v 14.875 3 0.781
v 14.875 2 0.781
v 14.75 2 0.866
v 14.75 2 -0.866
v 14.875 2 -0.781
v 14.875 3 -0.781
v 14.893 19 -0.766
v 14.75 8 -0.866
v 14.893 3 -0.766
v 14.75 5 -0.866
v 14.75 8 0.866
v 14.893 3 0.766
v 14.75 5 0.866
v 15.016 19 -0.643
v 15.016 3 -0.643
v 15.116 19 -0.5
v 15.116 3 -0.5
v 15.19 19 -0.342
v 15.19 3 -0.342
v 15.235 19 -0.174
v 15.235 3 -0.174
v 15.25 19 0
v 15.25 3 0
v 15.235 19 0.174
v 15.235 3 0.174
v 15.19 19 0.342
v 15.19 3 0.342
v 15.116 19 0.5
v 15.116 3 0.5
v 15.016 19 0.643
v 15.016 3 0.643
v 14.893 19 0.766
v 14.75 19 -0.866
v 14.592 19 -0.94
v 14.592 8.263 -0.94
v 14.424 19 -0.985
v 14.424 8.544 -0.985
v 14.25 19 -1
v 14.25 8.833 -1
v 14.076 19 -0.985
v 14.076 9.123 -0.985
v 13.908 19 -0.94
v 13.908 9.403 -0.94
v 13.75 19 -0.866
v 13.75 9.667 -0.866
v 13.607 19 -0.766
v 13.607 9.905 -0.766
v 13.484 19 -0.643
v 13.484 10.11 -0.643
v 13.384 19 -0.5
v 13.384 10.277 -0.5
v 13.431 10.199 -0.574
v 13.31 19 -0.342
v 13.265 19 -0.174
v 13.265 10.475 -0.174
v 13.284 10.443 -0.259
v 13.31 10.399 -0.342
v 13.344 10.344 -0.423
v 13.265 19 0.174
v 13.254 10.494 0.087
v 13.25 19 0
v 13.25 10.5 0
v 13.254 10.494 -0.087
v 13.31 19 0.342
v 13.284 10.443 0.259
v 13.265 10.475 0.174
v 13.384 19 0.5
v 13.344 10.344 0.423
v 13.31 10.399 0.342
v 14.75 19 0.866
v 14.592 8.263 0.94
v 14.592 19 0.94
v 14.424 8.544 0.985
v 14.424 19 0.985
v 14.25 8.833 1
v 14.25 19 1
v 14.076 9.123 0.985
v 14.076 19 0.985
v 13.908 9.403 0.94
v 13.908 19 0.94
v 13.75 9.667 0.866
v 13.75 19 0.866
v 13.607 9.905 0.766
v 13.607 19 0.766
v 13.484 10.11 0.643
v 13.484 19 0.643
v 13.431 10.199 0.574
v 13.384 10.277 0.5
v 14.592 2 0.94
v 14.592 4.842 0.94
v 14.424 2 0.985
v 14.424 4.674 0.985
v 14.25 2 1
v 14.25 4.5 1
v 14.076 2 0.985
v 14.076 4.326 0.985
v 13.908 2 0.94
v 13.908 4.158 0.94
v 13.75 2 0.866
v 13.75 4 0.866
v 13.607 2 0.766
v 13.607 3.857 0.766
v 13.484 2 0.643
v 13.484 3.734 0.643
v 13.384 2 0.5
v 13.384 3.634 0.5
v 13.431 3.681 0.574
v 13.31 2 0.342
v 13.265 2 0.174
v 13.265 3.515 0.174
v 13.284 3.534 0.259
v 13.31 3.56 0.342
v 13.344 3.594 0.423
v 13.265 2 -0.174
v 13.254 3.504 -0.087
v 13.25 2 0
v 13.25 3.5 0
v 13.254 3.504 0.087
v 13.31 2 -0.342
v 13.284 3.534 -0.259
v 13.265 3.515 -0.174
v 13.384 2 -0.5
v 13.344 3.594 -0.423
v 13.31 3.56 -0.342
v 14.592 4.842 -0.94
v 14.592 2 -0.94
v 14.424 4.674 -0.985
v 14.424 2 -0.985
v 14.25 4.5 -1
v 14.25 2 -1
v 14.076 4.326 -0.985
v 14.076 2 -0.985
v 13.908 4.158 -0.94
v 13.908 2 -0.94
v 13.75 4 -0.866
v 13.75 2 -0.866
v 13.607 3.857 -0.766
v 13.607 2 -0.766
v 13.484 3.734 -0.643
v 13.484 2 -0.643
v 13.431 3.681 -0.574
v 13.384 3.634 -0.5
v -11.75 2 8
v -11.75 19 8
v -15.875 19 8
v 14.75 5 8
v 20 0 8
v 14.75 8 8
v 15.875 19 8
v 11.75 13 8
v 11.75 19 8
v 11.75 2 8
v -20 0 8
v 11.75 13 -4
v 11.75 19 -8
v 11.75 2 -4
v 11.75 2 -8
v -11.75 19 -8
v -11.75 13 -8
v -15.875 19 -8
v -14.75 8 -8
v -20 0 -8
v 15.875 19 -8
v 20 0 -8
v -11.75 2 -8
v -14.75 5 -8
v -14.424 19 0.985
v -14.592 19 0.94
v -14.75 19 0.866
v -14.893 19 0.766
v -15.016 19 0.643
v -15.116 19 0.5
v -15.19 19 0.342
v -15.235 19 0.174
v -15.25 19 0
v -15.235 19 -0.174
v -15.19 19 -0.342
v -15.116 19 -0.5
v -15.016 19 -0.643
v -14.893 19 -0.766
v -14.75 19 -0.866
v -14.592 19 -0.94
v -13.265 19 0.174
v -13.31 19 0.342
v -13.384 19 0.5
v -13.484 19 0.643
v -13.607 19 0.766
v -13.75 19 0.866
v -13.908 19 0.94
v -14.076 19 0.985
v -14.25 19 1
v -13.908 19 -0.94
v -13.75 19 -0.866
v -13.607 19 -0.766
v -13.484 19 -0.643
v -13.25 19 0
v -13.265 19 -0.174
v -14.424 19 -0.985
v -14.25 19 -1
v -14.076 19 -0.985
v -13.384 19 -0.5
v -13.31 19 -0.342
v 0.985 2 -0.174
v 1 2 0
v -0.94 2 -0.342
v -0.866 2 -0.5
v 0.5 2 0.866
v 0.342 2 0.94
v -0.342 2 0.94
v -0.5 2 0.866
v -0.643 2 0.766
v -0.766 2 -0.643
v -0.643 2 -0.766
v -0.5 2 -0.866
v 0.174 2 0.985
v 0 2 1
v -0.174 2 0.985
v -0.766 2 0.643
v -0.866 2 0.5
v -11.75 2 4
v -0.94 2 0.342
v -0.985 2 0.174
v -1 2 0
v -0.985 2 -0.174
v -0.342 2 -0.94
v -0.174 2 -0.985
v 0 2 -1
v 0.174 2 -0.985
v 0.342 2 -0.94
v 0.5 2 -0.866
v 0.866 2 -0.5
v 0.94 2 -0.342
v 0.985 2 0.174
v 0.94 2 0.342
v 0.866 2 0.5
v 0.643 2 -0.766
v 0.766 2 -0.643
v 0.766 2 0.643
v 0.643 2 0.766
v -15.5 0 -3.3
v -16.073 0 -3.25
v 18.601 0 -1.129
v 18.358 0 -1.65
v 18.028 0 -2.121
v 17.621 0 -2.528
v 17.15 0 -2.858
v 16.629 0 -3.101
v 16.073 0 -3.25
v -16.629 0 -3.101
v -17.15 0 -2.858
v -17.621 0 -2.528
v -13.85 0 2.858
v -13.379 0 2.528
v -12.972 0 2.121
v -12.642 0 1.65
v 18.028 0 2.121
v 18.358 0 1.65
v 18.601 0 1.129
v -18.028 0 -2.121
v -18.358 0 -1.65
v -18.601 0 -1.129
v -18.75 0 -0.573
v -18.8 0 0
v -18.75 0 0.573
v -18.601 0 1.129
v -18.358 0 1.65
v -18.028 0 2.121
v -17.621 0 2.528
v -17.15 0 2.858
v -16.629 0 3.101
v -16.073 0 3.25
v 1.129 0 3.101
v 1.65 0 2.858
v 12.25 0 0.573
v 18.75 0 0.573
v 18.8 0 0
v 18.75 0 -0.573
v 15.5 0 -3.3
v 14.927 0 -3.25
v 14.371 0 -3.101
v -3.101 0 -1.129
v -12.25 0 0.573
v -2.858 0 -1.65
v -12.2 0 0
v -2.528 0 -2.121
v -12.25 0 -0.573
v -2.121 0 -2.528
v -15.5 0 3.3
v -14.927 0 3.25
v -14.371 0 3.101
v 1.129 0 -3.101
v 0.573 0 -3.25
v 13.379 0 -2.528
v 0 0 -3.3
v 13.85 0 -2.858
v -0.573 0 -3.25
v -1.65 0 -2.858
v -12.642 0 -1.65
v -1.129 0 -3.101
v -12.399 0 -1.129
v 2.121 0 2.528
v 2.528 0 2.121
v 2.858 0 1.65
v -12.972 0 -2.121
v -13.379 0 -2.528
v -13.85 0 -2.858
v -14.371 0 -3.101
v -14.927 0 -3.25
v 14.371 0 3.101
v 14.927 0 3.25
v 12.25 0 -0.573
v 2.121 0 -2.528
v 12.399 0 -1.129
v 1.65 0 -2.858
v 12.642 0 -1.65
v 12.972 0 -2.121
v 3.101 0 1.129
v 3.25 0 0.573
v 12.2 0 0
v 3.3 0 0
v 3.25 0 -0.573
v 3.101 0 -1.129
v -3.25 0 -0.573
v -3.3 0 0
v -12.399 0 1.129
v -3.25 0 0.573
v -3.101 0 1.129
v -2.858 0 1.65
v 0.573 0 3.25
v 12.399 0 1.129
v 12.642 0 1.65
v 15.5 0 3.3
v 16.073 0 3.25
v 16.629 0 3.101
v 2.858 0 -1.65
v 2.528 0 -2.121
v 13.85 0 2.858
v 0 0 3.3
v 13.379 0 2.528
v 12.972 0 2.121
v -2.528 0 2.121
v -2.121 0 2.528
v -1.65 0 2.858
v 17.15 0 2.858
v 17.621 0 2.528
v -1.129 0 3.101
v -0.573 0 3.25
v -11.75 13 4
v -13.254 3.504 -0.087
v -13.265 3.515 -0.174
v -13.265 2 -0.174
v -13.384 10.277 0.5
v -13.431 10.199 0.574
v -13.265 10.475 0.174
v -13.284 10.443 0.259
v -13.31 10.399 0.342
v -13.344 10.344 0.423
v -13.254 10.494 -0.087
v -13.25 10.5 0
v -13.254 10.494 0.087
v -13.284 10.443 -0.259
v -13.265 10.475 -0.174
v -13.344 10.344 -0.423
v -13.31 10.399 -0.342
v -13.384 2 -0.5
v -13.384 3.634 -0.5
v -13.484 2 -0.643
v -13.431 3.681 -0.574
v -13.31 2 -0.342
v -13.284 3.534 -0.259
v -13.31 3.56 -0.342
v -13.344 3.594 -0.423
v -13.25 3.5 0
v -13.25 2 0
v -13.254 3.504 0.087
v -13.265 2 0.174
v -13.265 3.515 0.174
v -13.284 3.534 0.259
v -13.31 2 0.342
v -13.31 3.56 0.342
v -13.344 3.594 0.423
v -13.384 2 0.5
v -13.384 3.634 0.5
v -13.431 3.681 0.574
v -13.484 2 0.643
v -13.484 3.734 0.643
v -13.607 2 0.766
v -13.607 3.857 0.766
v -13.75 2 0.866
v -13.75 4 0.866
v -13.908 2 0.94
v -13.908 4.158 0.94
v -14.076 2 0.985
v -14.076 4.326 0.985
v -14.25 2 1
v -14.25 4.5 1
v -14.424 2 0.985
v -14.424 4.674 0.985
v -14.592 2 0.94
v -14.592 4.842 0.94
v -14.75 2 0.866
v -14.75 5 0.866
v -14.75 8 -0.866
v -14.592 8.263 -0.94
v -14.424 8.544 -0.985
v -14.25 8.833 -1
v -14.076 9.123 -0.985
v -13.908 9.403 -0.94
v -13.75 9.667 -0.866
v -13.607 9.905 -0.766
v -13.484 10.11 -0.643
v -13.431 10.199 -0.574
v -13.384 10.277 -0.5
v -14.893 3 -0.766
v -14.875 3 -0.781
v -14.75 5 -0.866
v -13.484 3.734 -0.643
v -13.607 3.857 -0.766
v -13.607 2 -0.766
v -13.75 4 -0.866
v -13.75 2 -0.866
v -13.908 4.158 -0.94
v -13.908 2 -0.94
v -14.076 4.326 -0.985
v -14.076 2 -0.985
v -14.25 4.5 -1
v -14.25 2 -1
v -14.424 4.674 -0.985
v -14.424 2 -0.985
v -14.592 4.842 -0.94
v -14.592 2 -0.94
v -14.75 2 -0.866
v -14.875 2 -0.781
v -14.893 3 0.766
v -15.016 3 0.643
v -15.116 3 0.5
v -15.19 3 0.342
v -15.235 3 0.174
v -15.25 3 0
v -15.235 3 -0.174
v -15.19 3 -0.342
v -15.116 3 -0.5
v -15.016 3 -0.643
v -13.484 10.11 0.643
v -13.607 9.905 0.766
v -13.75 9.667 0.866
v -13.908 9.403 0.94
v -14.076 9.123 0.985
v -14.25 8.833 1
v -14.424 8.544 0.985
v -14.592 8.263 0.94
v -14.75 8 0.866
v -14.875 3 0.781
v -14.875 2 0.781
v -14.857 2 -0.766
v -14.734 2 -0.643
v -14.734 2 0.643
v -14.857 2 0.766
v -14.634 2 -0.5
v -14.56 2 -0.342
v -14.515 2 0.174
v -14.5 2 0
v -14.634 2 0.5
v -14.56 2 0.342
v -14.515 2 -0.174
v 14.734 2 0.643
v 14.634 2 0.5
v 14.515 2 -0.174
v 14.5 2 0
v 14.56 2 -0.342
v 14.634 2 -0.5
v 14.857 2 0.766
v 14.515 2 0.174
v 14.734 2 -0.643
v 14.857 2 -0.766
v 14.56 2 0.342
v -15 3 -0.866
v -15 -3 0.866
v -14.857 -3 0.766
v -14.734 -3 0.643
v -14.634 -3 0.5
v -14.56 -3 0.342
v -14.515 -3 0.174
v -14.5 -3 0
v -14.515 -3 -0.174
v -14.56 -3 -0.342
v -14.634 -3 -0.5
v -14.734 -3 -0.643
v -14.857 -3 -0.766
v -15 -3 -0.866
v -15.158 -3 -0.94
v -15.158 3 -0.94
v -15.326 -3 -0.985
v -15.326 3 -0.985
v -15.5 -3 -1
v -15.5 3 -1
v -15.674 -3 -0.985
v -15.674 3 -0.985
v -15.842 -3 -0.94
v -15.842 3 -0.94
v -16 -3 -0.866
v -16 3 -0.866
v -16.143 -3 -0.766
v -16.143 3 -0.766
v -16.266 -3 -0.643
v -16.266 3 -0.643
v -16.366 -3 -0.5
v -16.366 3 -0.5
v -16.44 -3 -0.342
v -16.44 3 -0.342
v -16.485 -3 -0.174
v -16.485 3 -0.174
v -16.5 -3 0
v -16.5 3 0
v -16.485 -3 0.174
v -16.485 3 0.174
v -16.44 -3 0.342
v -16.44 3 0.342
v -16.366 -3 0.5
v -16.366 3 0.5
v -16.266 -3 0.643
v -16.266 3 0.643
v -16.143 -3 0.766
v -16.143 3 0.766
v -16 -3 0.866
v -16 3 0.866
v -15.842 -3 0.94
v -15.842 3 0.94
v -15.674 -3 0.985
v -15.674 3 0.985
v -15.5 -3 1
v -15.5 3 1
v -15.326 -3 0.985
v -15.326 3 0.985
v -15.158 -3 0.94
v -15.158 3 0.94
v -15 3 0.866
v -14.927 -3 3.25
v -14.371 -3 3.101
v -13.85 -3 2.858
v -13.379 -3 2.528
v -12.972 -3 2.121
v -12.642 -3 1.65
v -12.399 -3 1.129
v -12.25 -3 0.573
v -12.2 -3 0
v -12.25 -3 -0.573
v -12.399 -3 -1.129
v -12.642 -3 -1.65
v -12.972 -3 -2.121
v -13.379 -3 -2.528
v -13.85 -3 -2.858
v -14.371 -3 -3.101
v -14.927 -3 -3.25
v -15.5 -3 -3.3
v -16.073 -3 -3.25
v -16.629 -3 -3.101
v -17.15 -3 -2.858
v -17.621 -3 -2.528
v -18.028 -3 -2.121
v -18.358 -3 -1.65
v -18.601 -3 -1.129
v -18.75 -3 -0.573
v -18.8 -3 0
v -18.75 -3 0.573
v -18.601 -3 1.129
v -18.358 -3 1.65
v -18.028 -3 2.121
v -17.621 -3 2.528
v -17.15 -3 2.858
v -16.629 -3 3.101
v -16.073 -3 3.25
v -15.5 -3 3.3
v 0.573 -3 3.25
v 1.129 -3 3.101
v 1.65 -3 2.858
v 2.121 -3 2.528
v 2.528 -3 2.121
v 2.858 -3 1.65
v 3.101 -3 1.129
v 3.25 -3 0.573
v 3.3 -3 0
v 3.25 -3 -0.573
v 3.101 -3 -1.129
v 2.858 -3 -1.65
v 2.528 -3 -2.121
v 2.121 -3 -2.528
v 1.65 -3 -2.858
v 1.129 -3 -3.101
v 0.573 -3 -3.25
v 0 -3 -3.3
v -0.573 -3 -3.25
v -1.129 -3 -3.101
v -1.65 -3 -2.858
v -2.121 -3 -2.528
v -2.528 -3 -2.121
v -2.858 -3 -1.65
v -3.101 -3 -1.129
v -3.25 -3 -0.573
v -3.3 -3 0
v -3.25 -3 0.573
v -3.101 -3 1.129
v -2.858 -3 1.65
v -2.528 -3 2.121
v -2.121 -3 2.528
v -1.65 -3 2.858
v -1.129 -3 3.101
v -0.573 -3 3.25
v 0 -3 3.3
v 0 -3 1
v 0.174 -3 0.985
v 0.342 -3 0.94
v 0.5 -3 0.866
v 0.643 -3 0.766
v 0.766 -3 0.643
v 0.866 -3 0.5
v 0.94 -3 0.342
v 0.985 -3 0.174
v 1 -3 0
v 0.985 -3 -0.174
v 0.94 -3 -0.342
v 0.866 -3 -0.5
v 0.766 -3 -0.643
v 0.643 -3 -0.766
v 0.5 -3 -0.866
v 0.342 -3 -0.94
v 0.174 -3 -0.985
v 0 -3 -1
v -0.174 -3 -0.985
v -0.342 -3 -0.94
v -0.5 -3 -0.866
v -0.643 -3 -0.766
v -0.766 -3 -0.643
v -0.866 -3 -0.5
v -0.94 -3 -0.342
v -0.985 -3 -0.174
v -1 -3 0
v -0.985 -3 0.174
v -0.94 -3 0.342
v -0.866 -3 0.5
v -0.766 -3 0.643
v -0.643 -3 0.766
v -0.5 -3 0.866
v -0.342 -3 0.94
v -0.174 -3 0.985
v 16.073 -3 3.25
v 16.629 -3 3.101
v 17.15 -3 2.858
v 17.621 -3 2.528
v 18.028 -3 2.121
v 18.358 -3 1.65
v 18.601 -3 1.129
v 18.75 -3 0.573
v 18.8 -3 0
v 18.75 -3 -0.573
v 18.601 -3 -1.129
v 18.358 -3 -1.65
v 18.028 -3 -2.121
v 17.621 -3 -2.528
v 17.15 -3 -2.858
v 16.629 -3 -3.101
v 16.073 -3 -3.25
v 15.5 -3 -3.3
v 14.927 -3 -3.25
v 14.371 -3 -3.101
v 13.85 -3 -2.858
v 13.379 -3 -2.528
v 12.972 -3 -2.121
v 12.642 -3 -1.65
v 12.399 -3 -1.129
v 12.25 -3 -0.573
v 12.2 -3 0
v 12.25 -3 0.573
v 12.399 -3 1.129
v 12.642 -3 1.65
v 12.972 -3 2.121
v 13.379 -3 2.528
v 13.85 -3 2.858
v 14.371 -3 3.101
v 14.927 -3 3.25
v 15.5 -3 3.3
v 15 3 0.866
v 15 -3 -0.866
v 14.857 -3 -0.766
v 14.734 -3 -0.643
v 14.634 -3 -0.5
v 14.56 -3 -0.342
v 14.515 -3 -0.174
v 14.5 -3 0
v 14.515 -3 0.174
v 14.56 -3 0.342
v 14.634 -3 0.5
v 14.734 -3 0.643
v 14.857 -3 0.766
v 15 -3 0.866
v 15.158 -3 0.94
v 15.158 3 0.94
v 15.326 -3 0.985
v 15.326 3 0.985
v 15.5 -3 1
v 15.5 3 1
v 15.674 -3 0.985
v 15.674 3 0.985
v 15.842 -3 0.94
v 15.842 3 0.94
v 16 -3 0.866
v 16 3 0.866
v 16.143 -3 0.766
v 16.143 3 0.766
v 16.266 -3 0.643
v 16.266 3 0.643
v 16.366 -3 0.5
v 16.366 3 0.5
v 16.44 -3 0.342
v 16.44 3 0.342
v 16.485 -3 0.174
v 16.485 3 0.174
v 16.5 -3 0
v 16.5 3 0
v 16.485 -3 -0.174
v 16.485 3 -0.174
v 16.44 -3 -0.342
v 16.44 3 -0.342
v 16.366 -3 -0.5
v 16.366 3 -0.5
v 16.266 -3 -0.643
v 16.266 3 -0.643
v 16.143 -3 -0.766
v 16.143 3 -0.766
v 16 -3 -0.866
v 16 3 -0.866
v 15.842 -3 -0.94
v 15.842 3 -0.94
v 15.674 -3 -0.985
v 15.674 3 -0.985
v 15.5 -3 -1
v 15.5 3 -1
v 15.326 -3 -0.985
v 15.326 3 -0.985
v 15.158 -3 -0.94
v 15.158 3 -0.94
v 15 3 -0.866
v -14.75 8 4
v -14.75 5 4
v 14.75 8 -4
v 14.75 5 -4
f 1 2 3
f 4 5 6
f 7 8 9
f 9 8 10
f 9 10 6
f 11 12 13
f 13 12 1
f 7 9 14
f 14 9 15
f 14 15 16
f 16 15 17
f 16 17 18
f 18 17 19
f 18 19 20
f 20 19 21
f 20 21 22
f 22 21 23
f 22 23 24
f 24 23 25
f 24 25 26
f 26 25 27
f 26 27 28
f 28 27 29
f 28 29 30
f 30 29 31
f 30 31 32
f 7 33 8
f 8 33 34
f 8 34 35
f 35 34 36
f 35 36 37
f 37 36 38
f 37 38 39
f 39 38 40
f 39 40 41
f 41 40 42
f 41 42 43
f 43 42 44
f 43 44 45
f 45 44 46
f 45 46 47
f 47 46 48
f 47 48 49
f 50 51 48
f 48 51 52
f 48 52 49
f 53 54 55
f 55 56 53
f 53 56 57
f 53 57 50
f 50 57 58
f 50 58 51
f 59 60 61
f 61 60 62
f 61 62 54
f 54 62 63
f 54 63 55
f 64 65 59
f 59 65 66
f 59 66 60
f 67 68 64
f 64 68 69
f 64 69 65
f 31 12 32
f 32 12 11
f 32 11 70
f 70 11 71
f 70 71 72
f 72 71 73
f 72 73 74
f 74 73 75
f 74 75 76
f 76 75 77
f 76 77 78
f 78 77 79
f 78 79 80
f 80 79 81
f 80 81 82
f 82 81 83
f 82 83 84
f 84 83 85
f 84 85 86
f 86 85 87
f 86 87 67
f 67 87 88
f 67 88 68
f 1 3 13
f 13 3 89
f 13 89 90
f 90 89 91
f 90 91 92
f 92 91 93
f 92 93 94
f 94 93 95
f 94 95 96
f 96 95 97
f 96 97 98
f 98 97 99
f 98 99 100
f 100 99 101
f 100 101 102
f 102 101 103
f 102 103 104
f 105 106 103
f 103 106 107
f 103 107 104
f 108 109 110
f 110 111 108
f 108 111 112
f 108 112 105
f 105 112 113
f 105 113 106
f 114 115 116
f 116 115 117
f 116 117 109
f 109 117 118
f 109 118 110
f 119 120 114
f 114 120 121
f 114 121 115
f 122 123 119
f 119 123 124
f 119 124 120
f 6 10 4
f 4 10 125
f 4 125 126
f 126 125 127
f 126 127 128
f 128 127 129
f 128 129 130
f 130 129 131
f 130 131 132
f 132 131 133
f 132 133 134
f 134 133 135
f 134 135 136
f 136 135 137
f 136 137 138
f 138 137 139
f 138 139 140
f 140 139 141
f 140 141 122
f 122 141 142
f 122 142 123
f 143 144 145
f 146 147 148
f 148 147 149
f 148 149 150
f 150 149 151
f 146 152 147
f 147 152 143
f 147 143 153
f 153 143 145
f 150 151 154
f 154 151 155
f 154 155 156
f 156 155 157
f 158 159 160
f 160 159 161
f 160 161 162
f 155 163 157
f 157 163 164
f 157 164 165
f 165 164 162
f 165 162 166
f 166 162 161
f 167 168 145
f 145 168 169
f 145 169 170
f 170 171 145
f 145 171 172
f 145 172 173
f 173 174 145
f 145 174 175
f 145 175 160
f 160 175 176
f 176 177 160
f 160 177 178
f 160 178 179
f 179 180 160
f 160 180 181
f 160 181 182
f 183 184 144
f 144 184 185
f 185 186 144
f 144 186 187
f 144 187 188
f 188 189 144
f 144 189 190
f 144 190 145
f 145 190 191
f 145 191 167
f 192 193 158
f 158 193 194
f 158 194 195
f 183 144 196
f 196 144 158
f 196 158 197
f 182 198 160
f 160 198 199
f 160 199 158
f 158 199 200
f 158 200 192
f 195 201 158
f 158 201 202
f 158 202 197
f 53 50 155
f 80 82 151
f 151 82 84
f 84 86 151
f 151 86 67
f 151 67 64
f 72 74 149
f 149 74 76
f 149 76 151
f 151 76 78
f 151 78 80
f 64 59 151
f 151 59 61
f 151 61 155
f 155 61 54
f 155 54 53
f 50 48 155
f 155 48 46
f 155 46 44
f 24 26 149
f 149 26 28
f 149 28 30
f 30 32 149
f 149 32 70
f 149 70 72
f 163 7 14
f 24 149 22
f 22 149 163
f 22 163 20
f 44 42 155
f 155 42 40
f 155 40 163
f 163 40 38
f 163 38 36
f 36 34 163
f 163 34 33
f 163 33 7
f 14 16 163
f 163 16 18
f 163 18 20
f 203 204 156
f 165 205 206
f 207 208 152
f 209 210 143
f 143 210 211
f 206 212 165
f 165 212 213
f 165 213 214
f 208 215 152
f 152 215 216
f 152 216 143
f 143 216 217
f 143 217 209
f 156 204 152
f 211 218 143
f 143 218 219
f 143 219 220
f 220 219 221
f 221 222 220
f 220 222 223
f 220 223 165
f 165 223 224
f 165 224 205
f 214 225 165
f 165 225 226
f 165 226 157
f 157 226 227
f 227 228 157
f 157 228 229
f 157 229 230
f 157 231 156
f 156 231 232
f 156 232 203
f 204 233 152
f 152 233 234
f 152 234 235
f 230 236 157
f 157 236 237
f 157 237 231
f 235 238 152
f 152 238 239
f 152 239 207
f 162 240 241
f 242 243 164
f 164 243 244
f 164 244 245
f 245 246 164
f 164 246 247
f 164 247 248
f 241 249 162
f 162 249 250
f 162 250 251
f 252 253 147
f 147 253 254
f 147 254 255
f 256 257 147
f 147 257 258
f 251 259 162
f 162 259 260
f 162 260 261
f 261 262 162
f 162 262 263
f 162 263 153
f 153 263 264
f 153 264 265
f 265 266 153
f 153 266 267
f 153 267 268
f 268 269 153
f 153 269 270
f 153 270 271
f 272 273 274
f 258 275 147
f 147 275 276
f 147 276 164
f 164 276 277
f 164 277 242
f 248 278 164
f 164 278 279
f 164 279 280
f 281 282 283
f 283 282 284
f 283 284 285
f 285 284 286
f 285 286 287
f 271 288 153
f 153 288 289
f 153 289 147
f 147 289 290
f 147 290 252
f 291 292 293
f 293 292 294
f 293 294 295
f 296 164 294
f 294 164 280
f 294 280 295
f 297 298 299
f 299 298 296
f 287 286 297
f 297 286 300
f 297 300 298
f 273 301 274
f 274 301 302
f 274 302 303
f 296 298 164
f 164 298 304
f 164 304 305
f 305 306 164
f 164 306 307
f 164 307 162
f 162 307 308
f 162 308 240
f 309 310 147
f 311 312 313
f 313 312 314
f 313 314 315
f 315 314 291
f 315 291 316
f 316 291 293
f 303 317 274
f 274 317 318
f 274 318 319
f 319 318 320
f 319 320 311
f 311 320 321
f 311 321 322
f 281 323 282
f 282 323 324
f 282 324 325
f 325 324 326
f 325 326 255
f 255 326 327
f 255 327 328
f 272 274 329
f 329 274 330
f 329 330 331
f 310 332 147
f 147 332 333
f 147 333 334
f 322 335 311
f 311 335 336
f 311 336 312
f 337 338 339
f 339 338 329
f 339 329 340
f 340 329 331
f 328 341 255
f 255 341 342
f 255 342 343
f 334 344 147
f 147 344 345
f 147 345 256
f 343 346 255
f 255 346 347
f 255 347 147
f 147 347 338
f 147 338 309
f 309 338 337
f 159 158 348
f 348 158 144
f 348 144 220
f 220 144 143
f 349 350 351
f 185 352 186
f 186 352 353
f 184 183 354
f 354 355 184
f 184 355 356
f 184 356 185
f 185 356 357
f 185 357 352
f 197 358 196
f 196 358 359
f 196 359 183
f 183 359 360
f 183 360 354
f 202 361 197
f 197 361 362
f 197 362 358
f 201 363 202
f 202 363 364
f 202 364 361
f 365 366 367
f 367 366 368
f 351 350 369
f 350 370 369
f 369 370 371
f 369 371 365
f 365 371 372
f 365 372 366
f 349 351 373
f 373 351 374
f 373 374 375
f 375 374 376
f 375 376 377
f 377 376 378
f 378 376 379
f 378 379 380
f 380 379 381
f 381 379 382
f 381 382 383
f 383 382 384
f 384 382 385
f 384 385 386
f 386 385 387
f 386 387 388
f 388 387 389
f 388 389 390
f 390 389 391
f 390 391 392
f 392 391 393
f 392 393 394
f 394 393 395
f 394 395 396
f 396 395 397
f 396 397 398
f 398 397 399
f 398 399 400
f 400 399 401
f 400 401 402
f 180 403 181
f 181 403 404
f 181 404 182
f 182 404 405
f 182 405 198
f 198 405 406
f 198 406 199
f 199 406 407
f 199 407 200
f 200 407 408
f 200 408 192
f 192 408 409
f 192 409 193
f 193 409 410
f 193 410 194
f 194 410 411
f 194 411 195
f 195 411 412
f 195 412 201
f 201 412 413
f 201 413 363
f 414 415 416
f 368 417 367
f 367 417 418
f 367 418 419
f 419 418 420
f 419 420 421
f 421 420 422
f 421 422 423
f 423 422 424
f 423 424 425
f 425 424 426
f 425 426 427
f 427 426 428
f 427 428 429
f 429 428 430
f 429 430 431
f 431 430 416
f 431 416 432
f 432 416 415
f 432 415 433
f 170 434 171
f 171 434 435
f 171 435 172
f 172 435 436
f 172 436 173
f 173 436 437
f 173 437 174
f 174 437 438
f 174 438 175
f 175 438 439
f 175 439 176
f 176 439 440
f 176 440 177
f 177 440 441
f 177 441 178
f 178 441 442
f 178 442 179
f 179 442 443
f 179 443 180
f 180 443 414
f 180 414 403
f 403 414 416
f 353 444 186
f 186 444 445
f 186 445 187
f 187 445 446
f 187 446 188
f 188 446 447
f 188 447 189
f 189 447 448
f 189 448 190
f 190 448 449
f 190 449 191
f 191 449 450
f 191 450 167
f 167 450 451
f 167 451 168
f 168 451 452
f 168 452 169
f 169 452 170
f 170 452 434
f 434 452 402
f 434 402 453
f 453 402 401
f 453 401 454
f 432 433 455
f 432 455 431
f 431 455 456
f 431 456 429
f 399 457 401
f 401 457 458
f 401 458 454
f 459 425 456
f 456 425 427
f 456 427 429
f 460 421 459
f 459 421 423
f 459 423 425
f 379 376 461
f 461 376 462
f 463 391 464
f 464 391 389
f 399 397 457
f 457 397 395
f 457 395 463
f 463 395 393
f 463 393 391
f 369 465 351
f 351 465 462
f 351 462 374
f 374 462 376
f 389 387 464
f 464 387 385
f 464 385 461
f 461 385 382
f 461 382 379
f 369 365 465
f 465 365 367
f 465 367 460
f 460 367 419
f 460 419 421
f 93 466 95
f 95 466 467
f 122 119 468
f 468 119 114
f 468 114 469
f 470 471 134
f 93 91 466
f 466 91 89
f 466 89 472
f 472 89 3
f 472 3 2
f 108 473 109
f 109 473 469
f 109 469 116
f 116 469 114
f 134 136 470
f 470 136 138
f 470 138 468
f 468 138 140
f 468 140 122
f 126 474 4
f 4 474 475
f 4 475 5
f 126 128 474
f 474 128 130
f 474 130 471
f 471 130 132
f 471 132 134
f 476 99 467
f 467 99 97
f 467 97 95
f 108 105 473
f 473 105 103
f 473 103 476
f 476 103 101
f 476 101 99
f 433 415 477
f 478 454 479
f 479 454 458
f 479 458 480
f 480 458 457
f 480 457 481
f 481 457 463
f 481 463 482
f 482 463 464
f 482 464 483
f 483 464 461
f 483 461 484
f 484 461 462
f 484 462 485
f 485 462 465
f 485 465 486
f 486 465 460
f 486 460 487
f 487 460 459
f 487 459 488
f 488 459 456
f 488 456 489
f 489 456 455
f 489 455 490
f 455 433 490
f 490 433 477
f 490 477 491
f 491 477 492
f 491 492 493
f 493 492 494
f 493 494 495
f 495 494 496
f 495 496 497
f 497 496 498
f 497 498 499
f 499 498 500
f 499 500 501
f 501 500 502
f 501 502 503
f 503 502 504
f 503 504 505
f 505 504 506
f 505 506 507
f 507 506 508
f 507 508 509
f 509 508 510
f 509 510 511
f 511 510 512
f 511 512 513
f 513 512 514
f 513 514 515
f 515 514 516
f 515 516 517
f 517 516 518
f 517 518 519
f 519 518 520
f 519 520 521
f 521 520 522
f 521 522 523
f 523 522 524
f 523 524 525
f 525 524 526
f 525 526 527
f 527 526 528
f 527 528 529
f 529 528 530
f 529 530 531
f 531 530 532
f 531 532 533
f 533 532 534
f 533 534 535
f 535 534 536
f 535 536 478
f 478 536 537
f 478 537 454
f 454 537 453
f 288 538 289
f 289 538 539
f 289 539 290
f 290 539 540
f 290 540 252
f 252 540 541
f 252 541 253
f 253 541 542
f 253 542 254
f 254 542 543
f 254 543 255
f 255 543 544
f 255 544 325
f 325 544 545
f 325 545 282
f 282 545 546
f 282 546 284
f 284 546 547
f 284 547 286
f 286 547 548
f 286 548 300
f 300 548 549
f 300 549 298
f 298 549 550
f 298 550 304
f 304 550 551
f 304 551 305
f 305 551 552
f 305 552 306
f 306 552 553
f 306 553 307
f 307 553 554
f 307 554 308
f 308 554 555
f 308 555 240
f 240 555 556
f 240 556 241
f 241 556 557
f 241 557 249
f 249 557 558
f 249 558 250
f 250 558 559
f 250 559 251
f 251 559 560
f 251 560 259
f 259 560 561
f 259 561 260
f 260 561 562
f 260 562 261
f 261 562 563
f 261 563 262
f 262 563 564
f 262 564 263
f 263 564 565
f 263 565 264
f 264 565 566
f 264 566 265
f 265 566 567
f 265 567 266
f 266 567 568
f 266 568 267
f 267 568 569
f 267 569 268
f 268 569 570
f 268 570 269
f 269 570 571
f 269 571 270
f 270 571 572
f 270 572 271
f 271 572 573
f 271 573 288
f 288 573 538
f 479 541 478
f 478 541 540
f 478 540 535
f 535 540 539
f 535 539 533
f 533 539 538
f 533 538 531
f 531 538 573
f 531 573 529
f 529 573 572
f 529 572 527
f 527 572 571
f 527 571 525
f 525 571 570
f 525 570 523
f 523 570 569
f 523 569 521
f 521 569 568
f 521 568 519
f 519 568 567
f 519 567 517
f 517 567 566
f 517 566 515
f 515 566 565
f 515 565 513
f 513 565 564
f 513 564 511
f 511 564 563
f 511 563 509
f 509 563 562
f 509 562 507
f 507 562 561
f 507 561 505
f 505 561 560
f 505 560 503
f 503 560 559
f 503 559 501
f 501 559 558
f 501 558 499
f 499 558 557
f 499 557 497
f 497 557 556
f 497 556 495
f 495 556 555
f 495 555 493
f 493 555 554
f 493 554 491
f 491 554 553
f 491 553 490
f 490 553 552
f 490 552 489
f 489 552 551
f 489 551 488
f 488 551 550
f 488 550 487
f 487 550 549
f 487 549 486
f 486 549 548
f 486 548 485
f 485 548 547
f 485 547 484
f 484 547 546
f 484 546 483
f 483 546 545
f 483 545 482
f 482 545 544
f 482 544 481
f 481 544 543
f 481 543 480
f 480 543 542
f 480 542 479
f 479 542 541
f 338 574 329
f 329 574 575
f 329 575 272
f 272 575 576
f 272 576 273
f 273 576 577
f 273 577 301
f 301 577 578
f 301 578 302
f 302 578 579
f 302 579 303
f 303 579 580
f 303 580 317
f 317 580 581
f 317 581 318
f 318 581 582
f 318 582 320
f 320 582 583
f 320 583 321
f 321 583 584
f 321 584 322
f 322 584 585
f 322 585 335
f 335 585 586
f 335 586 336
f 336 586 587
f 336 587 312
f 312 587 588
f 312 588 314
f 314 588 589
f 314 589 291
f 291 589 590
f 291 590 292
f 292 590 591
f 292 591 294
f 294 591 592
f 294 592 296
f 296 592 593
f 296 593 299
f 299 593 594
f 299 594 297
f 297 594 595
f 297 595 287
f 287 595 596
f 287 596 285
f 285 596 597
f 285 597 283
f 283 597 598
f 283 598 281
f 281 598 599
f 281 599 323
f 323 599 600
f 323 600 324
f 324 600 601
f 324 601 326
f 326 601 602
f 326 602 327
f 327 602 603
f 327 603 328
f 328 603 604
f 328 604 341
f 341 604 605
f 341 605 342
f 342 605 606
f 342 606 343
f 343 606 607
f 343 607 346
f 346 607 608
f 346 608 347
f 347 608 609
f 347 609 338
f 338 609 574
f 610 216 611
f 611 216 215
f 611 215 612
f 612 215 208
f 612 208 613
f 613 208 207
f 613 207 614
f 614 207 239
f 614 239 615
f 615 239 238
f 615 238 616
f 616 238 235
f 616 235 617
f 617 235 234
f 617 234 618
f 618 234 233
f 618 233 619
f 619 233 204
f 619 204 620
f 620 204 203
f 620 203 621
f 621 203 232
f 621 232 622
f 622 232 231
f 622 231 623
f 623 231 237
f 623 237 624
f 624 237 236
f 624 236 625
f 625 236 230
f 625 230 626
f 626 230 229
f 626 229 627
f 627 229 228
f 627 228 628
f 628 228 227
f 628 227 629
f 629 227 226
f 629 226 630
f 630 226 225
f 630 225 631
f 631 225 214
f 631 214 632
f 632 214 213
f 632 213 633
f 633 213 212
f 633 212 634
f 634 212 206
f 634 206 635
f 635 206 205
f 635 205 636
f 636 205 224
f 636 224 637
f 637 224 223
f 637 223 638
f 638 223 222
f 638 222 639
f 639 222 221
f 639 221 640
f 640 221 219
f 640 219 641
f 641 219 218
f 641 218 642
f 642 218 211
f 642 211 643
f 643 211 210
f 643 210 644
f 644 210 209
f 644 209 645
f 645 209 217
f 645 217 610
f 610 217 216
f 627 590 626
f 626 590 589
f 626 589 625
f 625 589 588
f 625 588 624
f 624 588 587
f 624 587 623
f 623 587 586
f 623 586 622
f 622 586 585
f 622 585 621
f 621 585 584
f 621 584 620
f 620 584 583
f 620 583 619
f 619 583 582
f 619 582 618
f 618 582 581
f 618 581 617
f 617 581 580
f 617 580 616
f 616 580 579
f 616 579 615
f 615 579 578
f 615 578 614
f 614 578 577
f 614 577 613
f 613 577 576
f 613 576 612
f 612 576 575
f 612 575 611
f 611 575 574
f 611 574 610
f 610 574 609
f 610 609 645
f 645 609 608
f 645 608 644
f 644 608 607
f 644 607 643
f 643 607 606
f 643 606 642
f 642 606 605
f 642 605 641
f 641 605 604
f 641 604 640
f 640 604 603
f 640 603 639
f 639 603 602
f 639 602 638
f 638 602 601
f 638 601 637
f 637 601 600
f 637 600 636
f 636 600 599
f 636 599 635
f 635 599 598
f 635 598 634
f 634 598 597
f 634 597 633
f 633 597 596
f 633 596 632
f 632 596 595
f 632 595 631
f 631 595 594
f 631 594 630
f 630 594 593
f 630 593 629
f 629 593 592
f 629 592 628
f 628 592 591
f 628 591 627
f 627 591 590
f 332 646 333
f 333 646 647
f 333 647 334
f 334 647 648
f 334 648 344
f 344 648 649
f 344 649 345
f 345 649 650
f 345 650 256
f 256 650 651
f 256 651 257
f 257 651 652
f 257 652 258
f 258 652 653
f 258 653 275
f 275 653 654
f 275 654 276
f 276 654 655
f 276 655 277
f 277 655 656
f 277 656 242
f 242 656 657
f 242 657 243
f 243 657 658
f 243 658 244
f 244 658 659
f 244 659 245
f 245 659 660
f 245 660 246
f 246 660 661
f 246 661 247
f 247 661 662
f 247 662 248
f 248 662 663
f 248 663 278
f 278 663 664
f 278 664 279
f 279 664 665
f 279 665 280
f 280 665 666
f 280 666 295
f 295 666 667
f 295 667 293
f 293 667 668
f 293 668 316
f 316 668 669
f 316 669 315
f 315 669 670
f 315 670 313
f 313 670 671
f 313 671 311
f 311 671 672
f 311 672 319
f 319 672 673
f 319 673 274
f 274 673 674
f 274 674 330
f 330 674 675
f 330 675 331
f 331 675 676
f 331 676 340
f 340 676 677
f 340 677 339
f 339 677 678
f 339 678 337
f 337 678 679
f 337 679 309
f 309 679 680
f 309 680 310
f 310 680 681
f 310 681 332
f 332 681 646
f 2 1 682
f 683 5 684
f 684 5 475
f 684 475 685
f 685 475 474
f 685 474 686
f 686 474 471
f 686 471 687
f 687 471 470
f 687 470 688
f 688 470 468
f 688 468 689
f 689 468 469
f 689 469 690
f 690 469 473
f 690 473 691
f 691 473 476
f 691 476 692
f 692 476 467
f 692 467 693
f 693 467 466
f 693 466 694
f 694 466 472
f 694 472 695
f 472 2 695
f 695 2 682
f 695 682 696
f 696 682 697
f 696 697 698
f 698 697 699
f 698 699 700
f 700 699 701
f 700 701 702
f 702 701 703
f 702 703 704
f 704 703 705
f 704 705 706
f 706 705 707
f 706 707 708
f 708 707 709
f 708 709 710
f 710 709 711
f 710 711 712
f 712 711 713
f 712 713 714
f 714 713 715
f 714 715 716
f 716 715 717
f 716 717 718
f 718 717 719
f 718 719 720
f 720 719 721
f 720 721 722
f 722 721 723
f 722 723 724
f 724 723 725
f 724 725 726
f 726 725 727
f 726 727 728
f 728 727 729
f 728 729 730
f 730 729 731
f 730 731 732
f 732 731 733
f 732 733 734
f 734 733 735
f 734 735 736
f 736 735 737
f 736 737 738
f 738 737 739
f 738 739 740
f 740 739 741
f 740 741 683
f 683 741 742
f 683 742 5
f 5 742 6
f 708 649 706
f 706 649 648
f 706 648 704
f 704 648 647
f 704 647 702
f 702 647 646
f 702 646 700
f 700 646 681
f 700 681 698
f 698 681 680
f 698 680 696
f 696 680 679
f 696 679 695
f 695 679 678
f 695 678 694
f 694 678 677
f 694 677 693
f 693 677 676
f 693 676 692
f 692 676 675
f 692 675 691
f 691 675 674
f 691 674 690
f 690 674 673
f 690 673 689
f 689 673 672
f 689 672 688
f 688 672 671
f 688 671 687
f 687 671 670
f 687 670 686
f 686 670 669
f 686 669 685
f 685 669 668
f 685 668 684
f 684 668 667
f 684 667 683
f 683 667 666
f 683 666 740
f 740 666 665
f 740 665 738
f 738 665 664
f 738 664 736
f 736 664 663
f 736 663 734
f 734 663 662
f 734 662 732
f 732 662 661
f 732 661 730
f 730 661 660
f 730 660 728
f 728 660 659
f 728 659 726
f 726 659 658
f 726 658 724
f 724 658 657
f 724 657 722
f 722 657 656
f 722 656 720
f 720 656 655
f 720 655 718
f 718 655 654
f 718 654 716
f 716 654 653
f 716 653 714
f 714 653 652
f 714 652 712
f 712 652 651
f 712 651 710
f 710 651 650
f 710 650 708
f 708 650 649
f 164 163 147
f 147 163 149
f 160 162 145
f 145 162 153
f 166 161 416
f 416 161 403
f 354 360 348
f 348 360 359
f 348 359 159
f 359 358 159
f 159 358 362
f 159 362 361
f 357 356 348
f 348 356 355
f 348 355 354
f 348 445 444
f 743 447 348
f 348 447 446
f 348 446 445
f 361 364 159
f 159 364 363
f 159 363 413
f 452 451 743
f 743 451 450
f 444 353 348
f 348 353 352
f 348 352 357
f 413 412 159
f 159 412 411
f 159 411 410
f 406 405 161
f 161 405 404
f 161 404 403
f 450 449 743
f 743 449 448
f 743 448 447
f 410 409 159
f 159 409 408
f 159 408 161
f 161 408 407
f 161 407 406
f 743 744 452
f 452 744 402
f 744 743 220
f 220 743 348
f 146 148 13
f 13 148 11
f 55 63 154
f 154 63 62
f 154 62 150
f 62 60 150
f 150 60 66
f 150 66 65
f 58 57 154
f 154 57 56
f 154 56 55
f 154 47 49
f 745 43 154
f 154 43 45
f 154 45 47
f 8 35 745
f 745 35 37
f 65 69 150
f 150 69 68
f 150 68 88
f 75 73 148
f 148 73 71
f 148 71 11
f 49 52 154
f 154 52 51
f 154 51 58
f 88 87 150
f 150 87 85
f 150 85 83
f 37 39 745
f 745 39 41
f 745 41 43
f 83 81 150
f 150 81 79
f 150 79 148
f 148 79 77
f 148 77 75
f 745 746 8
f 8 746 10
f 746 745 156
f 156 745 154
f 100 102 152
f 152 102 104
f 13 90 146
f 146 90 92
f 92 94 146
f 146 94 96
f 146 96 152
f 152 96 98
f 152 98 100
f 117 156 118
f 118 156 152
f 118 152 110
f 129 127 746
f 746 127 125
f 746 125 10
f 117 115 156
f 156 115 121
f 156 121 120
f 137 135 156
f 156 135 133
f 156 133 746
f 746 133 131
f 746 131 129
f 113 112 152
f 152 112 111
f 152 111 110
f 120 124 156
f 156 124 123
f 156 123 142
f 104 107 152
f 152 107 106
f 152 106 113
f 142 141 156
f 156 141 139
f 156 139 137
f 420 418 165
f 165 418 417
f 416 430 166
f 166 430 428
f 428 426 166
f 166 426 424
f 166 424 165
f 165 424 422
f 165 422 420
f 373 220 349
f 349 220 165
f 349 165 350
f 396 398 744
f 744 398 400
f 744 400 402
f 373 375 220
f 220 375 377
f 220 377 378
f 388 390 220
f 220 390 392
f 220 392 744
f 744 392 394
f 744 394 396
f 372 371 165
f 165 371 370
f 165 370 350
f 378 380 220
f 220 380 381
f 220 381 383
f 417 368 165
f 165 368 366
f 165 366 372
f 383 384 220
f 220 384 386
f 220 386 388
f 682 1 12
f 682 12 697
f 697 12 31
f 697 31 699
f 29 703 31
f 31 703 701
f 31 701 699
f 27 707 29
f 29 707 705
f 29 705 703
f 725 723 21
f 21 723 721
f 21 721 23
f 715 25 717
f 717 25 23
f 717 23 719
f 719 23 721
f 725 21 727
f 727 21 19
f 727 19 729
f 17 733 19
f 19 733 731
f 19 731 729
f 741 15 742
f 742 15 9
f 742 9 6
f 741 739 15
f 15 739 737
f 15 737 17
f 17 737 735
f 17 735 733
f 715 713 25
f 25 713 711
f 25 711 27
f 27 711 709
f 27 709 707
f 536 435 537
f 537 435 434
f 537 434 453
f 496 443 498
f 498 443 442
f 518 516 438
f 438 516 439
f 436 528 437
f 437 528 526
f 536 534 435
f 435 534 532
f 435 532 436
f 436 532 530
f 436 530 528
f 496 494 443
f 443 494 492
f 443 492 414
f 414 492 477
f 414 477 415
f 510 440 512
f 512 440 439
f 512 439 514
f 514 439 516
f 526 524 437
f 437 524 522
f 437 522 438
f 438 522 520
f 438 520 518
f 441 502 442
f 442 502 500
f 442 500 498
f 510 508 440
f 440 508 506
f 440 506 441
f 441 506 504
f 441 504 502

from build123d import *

# Parameters (mm, degrees)
ESBO_O1_W                = 40
ESBO_O1_H                = 16
RESSALTO_EXTRUS_O1_DEPTH = 2
ESBO_O1_4_W              = 8.25
ESBO_O1_4_H              = 16
ESBO_O1_4_R              = 1
RESSALTO_EXTRUS_O2_DEPTH = 19
ESBO_O2_R                = 3.3
ESBO_O2_R_2              = 1
RESSALTO_EXTRUS_O3_DEPTH = 3
CORTE_EXTRUS_O1_DEPTH    = 32.890437438
CORTE_EXTRUS_O3_DEPTH    = 12
CORTE_EXTRUS_O4_DEPTH    = 12
CHANFRO1_SIZE            = 3
CORTE_EXTRUS_O5_START    = -6
ESBO_O7_R                = 1
CORTE_EXTRUS_O5_DEPTH    = 6


with BuildPart() as part:
    # Esboço1 → Ressalto-extrusão1 (new body)
    with BuildSketch(Plane(origin=(0, 0, 0), x_dir=(1, 0, 0), z_dir=(0, 1, 0))):
        Rectangle(ESBO_O1_W, ESBO_O1_H)
    extrude(amount=RESSALTO_EXTRUS_O1_DEPTH)

    # Esboço1<4> → Ressalto-extrusão2 (add)
    # profile 1 of 2: a face of its own
    with BuildSketch(Plane(origin=(0, 0, 0), x_dir=(1, 0, 0), z_dir=(0, 1, 0))):
        with Locations((-15.875, 0)):
            Rectangle(ESBO_O1_4_W, ESBO_O1_4_H)
        with Locations(Location((-14.25, 0, 0), (0, 0, 270))):
            Circle(ESBO_O1_4_R, mode=Mode.SUBTRACT)
    # profile 2 of 2: a face of its own
    with BuildSketch(Plane(origin=(0, 0, 0), x_dir=(1, 0, 0), z_dir=(0, 1, 0))):
        with Locations((15.875, 0)):
            Rectangle(ESBO_O1_4_W, ESBO_O1_4_H)
        with Locations(Location((14.25, 0, 0), (0, 0, 270))):
            Circle(ESBO_O1_4_R, mode=Mode.SUBTRACT)
    extrude(amount=RESSALTO_EXTRUS_O2_DEPTH)

    # Esboço2 → Ressalto-extrusão3 (add)
    # profile 1 of 3: a face of its own
    with BuildSketch(Plane.XZ):
        with Locations(Location((0, 0, 0), (0, 0, 90))):
            Circle(ESBO_O2_R)
        with Locations(Location((0, 0, 0), (0, 0, 270))):
            Circle(ESBO_O2_R_2, mode=Mode.SUBTRACT)
    # profile 2 of 3: a face of its own
    with BuildSketch(Plane.XZ):
        with Locations(Location((-15.5, 0, 0), (0, 0, 90))):
            Circle(ESBO_O2_R)
        with Locations(Location((-15.5, 0, 0), (0, 0, 270))):
            Circle(ESBO_O2_R_2, mode=Mode.SUBTRACT)
    # profile 3 of 3: a face of its own
    with BuildSketch(Plane.XZ):
        with Locations(Location((15.5, 0, 0), (0, 0, 90))):
            Circle(ESBO_O2_R)
        with Locations(Location((15.5, 0, 0), (0, 0, 270))):
            Circle(ESBO_O2_R_2, mode=Mode.SUBTRACT)
    extrude(amount=RESSALTO_EXTRUS_O3_DEPTH)

    # Esboço3 → Corte-extrusão1 (cut, through all)
    with BuildSketch(Plane.XY.offset(8)):
        Polygon((15.875, 19), (20, 0), (20, 19), align=None)
        Polygon((-20, 0), (-15.875, 19), (-20, 19), align=None)
    extrude(amount=-CORTE_EXTRUS_O1_DEPTH, mode=Mode.SUBTRACT)

    # Esboço4 → Corte-extrusão3 (cut)
    with BuildSketch(Plane(origin=(0, 0, -8), x_dir=(-1, 0, 0), z_dir=(0, 0, -1))):
        Polygon((14.75, 8), (11.75, 13), (11.75, 5), (14.75, 5), align=None)
    extrude(amount=-CORTE_EXTRUS_O3_DEPTH, mode=Mode.SUBTRACT)

    # Esboço6 → Corte-extrusão4 (cut)
    with BuildSketch(Plane.XY.offset(8)):
        Polygon((14.75, 8), (11.75, 13), (11.75, 5), (14.75, 5), align=None)
    extrude(amount=-CORTE_EXTRUS_O4_DEPTH, mode=Mode.SUBTRACT)

    # Chanfro1
    # the kernel refuses this chamfer: 3 mm, written as the material it takes off along each edge
    with BuildSketch(Plane(origin=(11.75, 5, 15.715048964), x_dir=(-0.027495876610586202, -0.9996219169112968, 0), z_dir=(0, 0, -1))) as chanfro1_piece_1_section:
        Polygon((CHANFRO1_SIZE * 0.999621916911, -CHANFRO1_SIZE * 0.0274958766106), (-CHANFRO1_SIZE * 0.0274958766106, -CHANFRO1_SIZE * 0.999621916911), (0, 0), align=None)
    chanfro1_piece_1 = extrude(amount=19.715048964, mode=Mode.PRIVATE)
    chanfro1_piece_1 = split(chanfro1_piece_1, bisect_by=Plane(origin=(12.737731783, 2, 5.857524482), z_dir=(0, 1, 0)), keep=Keep.TOP, mode=Mode.PRIVATE)
    chanfro1_piece_1 = split(chanfro1_piece_1, bisect_by=Plane(origin=(14.75, 4.012268217, 5.857524482), z_dir=(-1, 0, 0)), keep=Keep.TOP, mode=Mode.PRIVATE)
    add(chanfro1_piece_1, mode=Mode.SUBTRACT)
    with BuildSketch(Plane(origin=(-11.75, 5, -15.715048964), x_dir=(0.027495876610586202, -0.9996219169112968, 0), z_dir=(0, 0, 1))) as chanfro1_piece_2_section:
        Polygon((CHANFRO1_SIZE * 0.999621916911, -CHANFRO1_SIZE * 0.0274958766106), (-CHANFRO1_SIZE * 0.0274958766106, -CHANFRO1_SIZE * 0.999621916911), (0, 0), align=None)
    chanfro1_piece_2 = extrude(amount=19.715048964, mode=Mode.PRIVATE)
    chanfro1_piece_2 = split(chanfro1_piece_2, bisect_by=Plane(origin=(-12.737731783, 2, -5.857524482), z_dir=(0, 1, 0)), keep=Keep.TOP, mode=Mode.PRIVATE)
    chanfro1_piece_2 = split(chanfro1_piece_2, bisect_by=Plane(origin=(-14.75, 4.012268217, -5.857524482), z_dir=(1, 0, 0)), keep=Keep.TOP, mode=Mode.PRIVATE)
    add(chanfro1_piece_2, mode=Mode.SUBTRACT)

    # Esboço7 → Corte-extrusão5 (cut)
    with BuildSketch(Plane.XZ.offset(3).offset(CORTE_EXTRUS_O5_START)):
        with Locations(Location((0, 0, 0), (0, 0, 90))):
            Circle(ESBO_O7_R)
        with Locations(Location((-15.5, 0, 0), (0, 0, 51.317812547))):
            Circle(ESBO_O7_R)
        with BuildLine():
            ThreePointArc((14.5, 0), (15.5, -1), (16.5, 0))
            Line((16.5, 0), (14.5, 0))
        make_face()
        with BuildLine():
            Line((14.5, 0), (16.5, 0))
            ThreePointArc((16.5, 0), (15.5, 1), (14.5, 0))
        make_face()
    extrude(amount=CORTE_EXTRUS_O5_DEPTH, mode=Mode.SUBTRACT)


solid = part.part
